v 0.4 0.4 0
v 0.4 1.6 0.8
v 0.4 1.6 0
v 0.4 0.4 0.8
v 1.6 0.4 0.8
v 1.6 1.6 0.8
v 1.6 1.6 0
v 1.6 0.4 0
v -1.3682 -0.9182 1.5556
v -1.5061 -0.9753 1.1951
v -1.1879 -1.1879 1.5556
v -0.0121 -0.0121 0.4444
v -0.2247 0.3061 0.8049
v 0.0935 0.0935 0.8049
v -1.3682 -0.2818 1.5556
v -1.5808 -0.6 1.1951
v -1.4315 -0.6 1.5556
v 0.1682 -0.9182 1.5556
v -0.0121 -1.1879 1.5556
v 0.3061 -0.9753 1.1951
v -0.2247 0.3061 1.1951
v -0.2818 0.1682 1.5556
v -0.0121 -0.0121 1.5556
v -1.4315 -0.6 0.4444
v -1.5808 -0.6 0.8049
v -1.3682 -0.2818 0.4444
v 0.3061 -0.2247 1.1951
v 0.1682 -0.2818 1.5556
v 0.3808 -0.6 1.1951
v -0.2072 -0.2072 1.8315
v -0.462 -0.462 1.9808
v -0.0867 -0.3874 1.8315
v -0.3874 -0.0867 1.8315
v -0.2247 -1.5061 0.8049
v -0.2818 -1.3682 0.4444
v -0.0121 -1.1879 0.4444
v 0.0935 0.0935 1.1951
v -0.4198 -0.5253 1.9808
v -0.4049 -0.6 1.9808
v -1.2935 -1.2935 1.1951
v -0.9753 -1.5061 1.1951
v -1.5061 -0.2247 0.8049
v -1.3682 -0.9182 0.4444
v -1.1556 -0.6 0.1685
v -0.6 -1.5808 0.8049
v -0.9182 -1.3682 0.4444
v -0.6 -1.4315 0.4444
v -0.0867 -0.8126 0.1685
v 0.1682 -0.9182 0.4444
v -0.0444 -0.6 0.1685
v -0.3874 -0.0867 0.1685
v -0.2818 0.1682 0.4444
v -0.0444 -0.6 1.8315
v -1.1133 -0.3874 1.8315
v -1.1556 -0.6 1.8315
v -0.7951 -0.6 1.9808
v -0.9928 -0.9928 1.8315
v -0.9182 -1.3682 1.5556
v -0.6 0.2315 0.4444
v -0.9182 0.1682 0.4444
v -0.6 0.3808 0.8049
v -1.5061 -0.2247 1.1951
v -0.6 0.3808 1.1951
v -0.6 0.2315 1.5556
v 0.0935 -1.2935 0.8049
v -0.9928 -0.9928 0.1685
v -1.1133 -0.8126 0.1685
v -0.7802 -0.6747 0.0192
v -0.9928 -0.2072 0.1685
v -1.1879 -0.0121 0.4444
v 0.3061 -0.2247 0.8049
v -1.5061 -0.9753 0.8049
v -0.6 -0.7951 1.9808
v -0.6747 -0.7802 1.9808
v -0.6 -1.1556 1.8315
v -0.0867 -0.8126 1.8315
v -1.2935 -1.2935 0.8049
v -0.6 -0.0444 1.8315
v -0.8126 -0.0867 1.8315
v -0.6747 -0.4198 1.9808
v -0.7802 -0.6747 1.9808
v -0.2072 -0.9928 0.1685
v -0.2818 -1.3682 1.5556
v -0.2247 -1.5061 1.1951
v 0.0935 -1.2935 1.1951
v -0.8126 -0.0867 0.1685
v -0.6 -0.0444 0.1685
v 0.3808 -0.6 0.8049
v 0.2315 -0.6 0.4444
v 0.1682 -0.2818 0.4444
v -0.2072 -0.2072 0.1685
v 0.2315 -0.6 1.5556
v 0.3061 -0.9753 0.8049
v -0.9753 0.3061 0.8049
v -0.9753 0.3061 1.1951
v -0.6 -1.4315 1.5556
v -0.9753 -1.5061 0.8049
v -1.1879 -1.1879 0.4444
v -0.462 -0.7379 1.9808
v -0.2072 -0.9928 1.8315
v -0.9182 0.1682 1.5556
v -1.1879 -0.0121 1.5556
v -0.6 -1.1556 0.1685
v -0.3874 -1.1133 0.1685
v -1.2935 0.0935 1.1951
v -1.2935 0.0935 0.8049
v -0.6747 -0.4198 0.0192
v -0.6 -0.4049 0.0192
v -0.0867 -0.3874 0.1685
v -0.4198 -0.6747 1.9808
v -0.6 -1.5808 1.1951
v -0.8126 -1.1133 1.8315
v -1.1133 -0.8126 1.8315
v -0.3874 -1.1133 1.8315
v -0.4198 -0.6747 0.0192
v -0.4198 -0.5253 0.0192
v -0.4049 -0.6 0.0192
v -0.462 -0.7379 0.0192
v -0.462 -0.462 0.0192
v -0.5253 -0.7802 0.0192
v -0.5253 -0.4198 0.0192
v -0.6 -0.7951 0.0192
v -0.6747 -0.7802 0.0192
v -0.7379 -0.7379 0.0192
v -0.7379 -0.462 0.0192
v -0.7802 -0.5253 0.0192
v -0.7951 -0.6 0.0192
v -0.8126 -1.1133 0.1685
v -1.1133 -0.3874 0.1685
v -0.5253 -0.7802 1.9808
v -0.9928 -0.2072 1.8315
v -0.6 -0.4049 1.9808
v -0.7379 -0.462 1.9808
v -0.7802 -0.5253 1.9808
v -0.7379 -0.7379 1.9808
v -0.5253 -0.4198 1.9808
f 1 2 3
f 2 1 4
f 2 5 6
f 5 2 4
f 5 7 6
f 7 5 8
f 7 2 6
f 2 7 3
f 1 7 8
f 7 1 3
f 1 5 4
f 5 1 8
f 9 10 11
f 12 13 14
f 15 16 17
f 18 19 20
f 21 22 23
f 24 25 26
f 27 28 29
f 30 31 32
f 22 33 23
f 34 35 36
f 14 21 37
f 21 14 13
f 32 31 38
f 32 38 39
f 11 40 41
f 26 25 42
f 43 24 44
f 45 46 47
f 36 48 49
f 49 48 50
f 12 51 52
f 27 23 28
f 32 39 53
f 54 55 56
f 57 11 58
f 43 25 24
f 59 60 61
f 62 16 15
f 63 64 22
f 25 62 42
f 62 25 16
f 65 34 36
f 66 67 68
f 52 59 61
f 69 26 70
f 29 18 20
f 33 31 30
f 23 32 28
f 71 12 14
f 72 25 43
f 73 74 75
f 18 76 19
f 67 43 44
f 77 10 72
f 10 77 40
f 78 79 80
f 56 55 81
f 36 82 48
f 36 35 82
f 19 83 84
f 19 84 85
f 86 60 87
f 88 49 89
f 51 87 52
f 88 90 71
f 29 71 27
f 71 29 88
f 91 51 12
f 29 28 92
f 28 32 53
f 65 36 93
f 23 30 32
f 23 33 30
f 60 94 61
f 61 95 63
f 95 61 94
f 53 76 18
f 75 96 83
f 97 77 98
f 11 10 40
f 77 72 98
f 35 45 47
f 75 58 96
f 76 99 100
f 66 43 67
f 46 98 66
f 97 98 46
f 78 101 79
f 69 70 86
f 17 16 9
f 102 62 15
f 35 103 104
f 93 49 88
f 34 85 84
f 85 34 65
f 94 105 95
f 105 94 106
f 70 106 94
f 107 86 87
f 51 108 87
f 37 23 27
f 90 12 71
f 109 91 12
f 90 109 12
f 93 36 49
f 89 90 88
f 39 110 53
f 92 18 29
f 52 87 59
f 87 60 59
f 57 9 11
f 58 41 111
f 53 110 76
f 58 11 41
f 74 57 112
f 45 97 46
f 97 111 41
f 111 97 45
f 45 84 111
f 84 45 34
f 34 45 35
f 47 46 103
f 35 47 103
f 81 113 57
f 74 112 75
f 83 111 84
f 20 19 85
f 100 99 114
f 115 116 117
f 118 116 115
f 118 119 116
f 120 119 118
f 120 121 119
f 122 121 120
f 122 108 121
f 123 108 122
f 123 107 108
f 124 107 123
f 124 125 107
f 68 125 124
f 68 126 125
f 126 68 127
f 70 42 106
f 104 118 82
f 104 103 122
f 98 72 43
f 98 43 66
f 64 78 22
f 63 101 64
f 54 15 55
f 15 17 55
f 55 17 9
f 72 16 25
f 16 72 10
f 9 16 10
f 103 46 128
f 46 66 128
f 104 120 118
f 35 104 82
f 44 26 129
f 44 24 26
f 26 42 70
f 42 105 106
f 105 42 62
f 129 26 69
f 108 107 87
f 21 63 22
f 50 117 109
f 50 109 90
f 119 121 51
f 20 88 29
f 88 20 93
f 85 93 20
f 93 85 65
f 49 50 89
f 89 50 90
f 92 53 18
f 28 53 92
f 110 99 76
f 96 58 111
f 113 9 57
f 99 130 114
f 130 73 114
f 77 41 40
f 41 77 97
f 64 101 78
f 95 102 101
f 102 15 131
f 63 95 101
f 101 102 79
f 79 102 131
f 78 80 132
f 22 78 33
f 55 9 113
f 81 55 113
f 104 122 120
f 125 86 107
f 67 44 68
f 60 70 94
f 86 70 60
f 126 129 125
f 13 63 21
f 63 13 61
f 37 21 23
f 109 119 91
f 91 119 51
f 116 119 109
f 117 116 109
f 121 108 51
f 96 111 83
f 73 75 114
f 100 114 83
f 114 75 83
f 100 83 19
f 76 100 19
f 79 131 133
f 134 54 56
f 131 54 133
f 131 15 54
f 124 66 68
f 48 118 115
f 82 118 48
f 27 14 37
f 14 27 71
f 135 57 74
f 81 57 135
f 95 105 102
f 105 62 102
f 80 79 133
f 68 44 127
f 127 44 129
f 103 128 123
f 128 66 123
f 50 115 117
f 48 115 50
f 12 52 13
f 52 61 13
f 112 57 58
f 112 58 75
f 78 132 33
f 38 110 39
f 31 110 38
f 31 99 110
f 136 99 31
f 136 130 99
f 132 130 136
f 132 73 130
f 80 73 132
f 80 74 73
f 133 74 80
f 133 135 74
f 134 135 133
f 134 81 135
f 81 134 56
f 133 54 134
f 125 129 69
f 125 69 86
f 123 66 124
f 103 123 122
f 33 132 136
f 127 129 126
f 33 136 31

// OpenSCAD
translate([1, 1, 0.4]) 
  cube([1.2, 1.2, 0.8], center = true);

translate([-0.6, -0.6, 1]) 
  sphere(1, $fn=16);
